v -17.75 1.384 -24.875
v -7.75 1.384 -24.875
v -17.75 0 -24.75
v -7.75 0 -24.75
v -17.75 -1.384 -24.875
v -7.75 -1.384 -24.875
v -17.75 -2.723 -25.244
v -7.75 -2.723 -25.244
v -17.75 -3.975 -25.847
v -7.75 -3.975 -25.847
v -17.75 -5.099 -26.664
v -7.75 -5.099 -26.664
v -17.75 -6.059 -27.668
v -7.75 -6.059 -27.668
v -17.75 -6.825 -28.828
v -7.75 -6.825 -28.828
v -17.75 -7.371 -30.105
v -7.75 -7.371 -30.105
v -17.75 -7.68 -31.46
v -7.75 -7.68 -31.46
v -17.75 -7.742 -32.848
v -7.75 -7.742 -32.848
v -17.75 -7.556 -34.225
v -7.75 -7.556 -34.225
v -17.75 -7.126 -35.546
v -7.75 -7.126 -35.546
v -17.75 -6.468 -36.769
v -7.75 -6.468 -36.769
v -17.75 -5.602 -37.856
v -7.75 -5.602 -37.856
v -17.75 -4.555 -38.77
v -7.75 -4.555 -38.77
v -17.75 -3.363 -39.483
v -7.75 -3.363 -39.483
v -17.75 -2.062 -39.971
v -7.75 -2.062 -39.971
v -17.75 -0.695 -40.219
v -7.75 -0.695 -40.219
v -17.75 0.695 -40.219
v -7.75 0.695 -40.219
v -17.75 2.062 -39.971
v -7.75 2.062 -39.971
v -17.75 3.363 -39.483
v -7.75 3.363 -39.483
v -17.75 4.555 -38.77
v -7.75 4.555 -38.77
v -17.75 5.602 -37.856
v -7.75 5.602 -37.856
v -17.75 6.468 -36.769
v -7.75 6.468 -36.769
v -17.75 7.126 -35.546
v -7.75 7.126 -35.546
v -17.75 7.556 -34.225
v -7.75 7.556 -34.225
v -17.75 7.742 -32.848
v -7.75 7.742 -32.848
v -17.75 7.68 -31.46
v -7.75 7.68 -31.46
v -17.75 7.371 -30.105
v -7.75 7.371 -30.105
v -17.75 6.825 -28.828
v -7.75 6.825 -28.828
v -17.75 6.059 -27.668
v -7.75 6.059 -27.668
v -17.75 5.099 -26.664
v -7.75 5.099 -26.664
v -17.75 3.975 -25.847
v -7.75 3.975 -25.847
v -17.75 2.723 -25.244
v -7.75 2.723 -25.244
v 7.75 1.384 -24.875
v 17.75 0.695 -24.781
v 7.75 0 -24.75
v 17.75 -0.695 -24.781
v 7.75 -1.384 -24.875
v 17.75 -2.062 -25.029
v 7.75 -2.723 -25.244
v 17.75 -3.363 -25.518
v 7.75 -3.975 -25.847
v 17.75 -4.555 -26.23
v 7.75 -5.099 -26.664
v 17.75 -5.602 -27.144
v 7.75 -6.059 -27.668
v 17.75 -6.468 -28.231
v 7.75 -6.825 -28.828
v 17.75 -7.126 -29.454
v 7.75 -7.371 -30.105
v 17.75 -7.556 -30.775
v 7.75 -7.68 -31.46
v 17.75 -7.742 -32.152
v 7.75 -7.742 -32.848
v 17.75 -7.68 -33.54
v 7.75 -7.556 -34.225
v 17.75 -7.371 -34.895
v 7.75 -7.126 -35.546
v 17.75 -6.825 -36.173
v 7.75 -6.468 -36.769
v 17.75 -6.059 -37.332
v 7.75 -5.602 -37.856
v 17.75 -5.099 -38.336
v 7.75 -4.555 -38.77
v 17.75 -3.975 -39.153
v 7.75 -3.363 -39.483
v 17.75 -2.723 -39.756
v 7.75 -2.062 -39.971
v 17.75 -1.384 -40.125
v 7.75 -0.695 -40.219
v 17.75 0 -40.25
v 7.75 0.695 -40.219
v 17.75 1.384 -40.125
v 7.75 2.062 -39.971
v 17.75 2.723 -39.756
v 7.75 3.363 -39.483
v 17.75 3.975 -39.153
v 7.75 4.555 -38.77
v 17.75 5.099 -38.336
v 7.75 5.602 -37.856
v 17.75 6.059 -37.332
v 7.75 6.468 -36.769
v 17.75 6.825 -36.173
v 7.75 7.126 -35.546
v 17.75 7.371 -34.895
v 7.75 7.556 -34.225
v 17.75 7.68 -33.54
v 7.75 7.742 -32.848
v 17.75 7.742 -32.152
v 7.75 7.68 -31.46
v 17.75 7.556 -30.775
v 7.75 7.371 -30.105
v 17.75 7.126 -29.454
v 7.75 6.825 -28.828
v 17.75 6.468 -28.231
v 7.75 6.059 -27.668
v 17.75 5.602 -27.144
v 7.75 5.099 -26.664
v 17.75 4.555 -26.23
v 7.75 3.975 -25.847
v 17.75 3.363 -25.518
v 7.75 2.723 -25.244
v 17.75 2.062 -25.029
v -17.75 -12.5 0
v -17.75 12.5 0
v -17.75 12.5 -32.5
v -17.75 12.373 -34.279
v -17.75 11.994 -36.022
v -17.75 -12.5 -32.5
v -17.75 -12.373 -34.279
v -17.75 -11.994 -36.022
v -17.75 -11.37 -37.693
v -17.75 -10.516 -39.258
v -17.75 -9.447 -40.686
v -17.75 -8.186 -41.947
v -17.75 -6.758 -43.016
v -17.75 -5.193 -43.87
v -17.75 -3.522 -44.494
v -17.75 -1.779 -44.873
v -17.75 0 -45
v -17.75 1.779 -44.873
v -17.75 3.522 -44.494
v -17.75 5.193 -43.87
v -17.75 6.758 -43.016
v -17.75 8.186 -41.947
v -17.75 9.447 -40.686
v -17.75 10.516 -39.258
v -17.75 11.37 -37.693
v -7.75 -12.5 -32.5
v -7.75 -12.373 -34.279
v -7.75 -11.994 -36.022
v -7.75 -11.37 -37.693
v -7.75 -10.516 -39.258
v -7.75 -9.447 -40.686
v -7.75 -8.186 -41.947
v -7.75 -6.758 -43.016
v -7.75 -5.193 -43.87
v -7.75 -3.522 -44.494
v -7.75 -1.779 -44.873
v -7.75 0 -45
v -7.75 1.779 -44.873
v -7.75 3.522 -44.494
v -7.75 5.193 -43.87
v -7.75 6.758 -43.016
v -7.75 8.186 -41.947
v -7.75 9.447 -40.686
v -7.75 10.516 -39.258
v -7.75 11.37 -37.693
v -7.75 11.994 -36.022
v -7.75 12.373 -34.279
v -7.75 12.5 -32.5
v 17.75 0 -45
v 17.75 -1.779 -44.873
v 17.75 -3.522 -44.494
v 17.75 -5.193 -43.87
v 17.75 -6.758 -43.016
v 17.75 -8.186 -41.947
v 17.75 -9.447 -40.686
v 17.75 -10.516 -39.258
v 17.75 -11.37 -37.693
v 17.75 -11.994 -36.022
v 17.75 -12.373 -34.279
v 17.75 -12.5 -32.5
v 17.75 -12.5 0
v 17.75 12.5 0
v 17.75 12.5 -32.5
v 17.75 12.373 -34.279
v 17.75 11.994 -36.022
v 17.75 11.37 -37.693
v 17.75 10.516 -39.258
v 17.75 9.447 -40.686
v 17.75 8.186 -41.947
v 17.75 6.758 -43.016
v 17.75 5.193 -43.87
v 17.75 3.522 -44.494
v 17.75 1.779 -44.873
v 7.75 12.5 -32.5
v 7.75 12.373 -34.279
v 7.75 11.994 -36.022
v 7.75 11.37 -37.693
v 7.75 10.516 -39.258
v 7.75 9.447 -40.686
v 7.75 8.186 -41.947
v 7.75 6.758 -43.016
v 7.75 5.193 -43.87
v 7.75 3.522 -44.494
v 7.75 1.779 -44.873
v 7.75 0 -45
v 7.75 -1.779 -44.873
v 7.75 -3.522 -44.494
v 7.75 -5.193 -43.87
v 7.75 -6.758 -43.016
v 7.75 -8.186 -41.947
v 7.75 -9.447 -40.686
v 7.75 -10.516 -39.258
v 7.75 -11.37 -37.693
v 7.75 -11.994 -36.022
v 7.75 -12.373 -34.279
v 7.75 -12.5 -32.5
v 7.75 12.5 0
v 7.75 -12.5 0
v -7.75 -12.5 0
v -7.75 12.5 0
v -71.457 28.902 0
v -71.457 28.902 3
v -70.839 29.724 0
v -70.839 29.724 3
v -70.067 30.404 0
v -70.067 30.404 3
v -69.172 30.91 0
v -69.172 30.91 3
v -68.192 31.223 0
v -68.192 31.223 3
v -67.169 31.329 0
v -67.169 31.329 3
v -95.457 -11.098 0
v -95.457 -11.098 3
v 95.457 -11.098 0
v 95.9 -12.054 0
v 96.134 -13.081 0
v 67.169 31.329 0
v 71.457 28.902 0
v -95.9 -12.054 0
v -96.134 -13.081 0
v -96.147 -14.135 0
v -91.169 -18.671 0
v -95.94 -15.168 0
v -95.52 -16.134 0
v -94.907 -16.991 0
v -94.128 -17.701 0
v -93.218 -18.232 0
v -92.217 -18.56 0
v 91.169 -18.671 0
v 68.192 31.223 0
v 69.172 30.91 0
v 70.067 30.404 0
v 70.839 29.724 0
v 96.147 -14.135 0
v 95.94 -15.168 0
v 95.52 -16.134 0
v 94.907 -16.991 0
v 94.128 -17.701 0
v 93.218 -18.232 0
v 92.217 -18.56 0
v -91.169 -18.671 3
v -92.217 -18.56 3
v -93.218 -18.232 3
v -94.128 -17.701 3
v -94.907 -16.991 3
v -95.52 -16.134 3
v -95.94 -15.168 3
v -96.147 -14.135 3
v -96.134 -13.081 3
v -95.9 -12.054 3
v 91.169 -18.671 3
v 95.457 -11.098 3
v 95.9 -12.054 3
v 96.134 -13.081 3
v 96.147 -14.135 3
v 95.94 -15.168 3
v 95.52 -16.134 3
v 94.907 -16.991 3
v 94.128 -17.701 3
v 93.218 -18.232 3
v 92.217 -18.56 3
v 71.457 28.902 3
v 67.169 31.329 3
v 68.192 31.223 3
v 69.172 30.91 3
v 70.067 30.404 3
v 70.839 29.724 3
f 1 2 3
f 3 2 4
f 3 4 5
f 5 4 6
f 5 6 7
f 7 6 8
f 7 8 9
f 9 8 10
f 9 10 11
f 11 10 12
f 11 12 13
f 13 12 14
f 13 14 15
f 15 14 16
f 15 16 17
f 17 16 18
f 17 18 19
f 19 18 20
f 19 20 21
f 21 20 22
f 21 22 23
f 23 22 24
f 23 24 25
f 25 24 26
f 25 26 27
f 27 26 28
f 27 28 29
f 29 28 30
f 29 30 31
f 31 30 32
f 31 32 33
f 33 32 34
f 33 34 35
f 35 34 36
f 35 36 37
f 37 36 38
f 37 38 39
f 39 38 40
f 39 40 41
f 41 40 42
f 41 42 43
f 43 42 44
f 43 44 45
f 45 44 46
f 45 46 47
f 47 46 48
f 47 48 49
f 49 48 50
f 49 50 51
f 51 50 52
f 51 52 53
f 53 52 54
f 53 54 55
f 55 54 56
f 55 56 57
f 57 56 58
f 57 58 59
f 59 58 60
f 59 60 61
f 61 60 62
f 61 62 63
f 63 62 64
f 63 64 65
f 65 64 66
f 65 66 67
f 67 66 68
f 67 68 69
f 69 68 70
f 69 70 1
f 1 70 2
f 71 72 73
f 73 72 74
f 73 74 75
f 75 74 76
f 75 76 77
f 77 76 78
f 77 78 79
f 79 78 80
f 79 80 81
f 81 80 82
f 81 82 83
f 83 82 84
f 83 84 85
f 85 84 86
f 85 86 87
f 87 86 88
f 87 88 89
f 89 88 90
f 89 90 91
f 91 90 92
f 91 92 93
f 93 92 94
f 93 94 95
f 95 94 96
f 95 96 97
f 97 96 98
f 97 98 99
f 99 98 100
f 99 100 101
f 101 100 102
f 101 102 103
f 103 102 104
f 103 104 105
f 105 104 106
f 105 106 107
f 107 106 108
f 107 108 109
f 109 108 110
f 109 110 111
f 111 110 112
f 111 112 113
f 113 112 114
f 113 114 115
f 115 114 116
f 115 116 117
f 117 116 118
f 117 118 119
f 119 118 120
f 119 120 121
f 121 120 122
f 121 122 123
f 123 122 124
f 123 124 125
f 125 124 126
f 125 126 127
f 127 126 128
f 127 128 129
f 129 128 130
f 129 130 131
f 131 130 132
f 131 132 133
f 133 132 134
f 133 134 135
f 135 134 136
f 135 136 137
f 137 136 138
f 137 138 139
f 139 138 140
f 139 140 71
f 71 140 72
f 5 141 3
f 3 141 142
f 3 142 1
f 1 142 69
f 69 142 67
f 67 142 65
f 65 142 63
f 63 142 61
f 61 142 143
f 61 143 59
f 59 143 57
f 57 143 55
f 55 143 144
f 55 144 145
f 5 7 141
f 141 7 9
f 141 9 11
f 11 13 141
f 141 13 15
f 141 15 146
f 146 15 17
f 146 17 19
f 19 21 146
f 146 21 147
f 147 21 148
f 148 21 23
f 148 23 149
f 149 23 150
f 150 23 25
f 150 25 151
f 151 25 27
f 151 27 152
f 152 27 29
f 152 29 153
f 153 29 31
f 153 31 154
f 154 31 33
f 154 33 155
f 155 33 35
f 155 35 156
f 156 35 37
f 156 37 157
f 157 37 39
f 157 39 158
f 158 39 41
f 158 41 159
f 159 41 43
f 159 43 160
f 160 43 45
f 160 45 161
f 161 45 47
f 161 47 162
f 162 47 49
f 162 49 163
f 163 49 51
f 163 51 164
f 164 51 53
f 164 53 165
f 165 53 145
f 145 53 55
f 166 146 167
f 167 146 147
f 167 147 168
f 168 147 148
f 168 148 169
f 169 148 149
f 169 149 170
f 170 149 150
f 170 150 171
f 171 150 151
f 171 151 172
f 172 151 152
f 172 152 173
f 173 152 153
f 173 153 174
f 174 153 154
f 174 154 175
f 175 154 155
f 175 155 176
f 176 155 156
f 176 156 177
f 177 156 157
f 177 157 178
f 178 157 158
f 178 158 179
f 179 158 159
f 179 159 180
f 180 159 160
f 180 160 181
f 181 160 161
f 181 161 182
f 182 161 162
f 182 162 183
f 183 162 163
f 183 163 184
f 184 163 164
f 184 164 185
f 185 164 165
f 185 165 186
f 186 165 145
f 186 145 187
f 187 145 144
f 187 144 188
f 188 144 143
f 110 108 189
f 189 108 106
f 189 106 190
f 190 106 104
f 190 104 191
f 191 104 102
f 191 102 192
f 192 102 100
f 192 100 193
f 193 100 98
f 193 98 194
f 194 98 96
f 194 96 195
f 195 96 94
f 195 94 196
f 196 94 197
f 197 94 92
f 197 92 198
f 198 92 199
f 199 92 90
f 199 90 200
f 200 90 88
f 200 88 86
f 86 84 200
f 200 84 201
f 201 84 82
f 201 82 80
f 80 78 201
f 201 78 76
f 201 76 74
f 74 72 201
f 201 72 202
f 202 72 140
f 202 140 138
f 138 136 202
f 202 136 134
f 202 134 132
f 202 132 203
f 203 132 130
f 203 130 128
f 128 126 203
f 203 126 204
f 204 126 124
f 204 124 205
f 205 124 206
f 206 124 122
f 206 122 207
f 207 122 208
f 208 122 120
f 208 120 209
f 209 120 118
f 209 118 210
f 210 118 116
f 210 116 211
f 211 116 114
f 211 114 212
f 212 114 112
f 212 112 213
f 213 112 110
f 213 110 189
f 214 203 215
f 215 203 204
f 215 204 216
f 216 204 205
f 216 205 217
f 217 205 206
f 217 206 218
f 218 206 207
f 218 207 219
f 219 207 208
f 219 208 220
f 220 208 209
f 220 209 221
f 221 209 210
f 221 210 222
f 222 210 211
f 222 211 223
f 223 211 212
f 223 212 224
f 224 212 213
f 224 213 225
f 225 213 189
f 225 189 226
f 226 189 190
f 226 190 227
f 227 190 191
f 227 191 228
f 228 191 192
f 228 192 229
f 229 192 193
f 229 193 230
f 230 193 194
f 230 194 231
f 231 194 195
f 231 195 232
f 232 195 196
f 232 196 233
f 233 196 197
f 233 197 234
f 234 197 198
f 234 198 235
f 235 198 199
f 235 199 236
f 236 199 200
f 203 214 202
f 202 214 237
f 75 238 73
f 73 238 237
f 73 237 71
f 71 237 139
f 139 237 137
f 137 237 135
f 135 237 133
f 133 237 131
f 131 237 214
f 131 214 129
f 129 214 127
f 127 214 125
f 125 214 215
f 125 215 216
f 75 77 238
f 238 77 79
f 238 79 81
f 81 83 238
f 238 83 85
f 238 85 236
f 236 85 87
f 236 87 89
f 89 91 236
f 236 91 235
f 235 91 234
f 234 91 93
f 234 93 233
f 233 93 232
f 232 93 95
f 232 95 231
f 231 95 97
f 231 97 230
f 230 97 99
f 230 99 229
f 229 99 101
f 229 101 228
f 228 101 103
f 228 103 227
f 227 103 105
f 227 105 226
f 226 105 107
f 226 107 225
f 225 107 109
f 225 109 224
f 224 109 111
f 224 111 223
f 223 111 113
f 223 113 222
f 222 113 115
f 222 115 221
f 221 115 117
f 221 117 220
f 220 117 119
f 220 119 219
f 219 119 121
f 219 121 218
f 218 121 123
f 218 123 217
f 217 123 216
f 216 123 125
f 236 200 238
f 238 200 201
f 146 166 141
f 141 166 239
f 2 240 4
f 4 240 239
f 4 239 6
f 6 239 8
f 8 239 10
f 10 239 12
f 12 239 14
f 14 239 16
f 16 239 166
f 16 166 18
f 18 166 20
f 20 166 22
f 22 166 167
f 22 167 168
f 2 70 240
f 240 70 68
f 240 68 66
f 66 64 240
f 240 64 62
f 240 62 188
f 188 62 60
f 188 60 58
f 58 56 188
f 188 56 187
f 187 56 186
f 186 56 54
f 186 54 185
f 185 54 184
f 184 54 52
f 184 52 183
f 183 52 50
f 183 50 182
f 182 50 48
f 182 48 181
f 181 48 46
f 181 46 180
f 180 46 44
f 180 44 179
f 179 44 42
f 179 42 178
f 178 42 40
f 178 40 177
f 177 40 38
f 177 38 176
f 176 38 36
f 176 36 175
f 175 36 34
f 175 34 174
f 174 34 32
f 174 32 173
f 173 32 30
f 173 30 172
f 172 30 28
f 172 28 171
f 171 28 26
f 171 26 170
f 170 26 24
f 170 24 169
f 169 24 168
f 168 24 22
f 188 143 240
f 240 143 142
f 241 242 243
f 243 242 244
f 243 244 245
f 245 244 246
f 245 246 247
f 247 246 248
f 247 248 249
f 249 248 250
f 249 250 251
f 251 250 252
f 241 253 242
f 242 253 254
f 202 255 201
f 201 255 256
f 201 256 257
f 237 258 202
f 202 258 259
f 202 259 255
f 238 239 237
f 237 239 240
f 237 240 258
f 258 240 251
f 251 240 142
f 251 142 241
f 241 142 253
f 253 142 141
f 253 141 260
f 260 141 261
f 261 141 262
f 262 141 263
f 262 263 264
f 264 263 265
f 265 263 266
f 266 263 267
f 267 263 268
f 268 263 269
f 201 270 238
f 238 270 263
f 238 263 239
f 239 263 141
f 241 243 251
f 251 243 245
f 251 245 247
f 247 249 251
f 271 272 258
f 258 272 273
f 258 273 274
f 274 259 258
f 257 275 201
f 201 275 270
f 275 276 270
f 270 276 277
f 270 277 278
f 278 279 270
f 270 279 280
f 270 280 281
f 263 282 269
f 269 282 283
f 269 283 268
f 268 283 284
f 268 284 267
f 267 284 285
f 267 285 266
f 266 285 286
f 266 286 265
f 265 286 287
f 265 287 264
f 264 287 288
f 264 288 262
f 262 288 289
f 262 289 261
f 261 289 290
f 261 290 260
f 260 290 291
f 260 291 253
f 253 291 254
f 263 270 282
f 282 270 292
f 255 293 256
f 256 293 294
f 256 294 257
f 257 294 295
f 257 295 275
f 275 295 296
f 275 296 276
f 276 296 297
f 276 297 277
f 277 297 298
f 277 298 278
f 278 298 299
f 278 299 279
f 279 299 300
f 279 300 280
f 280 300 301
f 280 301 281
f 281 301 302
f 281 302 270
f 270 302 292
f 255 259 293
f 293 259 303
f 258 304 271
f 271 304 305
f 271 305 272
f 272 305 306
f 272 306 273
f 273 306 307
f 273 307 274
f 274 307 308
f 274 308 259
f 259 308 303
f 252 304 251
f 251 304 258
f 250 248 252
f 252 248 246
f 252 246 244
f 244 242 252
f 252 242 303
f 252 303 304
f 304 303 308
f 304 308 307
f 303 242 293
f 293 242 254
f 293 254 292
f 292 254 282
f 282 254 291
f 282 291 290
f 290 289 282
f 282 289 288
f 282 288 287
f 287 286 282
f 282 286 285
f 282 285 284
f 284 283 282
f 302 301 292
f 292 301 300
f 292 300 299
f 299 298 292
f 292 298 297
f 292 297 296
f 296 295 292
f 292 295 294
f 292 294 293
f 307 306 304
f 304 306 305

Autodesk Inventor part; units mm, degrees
ref_plane "YZ Plane" through (0, 0, 0) normal (1, 0, 0) x (0, 1, 0)
ref_plane "XZ Plane" through (0, 0, 0) normal (0, 1, 0) x (-1, 0, 0)
ref_plane "XY Plane" through (0, 0, 0) normal (0, 0, 1) x (1, 0, 0)
sketch "Sketch1" plane through (0, 0, 0) normal (0, 0, 1) x (1, 0, 0)
  line L0 (0, 31.3291) -> (70, 31.3291)
  line L1 (70, 31.3291) -> (100, -18.6709)
  line L2 (100, -18.6709) -> (0, -18.6709)
  line L3 (0, 31.3291) -> (0, -18.6709)
  line L4 (0, 31.3291) -> (-70, 31.3291)
  line L5 (-70, 31.3291) -> (-100, -18.6709)
  line L6 (-100, -18.6709) -> (0, -18.6709)
  point P0 (0, 0)
  dimension "d0" = 100
  dimension "d1" = 70
  dimension "d2" = 50
extrude "Extrusion1" add sketch "Sketch1" along normal blind 3
fillet "Fillet1" radius 5 4 edges at (70, 31.3291, 1.5) (100, -18.6709, 1.5) (-100, -18.6709, 1.5) (-70, 31.3291, 1.5)
sketch "Sketch2" plane through (0, 0, 0) normal (0, 0, -1) x (-1, 0, 0)
  line L0 (-17.75, -12.5) -> (17.75, -12.5)
  line L1 (17.75, -12.5) -> (17.75, 12.5)
  line L2 (17.75, 12.5) -> (-17.75, 12.5)
  line L3 (-17.75, 12.5) -> (-17.75, -12.5)
  line L4 (-17.75, -12.5) -> (17.75, 12.5) construction
  line L5 (17.75, -12.5) -> (-17.75, 12.5) construction
  line L6 (7.75, -12.5) -> (-7.75, -12.5)
  line L7 (-7.75, -12.5) -> (-7.75, 12.5)
  line L8 (-7.75, 12.5) -> (7.75, 12.5)
  line L9 (7.75, 12.5) -> (7.75, -12.5)
  line L10 (7.75, -12.5) -> (-7.75, 12.5) construction
  line L11 (-7.75, -12.5) -> (7.75, 12.5) construction
  point P0 (0, 0)
  dimension "d6" = 15.5
  dimension "d7" = 25
  dimension "d8" = 10
extrude "Extrusion2" add sketch "Sketch2" along normal blind 45 contours L3 L2 L7 L0 | L9 L2 L1 L0
fillet "Fillet2" radius 12.5 4 edges at (12.75, 12.5, -45) (12.75, -12.5, -45) (-12.75, -12.5, -45) (-12.75, 12.5, -45)
sketch "Sketch3" plane through (17.75, -12.5, 0) normal (1, 0, 0) x (0, 0, -1)
  arc A0 (32.5, 0) -> (32.5, 25) centre (32.5, 12.5) ccw projected
  line L0 (0, 25) -> (32.5, 25) projected
  line L1 (0, 0) -> (0, 25) projected
  line L2 (0, 0) -> (32.5, 0) projected
  circle A1 centre (32.5, 12.5) radius 7.75
  point P0 (0, 12.5)
  dimension "d12" = 15.5
extrude "Extrusion3" cut sketch "Sketch3" against normal up to surface (35.5 mm away) contours A1
properties part number "Lower Back Plate"
